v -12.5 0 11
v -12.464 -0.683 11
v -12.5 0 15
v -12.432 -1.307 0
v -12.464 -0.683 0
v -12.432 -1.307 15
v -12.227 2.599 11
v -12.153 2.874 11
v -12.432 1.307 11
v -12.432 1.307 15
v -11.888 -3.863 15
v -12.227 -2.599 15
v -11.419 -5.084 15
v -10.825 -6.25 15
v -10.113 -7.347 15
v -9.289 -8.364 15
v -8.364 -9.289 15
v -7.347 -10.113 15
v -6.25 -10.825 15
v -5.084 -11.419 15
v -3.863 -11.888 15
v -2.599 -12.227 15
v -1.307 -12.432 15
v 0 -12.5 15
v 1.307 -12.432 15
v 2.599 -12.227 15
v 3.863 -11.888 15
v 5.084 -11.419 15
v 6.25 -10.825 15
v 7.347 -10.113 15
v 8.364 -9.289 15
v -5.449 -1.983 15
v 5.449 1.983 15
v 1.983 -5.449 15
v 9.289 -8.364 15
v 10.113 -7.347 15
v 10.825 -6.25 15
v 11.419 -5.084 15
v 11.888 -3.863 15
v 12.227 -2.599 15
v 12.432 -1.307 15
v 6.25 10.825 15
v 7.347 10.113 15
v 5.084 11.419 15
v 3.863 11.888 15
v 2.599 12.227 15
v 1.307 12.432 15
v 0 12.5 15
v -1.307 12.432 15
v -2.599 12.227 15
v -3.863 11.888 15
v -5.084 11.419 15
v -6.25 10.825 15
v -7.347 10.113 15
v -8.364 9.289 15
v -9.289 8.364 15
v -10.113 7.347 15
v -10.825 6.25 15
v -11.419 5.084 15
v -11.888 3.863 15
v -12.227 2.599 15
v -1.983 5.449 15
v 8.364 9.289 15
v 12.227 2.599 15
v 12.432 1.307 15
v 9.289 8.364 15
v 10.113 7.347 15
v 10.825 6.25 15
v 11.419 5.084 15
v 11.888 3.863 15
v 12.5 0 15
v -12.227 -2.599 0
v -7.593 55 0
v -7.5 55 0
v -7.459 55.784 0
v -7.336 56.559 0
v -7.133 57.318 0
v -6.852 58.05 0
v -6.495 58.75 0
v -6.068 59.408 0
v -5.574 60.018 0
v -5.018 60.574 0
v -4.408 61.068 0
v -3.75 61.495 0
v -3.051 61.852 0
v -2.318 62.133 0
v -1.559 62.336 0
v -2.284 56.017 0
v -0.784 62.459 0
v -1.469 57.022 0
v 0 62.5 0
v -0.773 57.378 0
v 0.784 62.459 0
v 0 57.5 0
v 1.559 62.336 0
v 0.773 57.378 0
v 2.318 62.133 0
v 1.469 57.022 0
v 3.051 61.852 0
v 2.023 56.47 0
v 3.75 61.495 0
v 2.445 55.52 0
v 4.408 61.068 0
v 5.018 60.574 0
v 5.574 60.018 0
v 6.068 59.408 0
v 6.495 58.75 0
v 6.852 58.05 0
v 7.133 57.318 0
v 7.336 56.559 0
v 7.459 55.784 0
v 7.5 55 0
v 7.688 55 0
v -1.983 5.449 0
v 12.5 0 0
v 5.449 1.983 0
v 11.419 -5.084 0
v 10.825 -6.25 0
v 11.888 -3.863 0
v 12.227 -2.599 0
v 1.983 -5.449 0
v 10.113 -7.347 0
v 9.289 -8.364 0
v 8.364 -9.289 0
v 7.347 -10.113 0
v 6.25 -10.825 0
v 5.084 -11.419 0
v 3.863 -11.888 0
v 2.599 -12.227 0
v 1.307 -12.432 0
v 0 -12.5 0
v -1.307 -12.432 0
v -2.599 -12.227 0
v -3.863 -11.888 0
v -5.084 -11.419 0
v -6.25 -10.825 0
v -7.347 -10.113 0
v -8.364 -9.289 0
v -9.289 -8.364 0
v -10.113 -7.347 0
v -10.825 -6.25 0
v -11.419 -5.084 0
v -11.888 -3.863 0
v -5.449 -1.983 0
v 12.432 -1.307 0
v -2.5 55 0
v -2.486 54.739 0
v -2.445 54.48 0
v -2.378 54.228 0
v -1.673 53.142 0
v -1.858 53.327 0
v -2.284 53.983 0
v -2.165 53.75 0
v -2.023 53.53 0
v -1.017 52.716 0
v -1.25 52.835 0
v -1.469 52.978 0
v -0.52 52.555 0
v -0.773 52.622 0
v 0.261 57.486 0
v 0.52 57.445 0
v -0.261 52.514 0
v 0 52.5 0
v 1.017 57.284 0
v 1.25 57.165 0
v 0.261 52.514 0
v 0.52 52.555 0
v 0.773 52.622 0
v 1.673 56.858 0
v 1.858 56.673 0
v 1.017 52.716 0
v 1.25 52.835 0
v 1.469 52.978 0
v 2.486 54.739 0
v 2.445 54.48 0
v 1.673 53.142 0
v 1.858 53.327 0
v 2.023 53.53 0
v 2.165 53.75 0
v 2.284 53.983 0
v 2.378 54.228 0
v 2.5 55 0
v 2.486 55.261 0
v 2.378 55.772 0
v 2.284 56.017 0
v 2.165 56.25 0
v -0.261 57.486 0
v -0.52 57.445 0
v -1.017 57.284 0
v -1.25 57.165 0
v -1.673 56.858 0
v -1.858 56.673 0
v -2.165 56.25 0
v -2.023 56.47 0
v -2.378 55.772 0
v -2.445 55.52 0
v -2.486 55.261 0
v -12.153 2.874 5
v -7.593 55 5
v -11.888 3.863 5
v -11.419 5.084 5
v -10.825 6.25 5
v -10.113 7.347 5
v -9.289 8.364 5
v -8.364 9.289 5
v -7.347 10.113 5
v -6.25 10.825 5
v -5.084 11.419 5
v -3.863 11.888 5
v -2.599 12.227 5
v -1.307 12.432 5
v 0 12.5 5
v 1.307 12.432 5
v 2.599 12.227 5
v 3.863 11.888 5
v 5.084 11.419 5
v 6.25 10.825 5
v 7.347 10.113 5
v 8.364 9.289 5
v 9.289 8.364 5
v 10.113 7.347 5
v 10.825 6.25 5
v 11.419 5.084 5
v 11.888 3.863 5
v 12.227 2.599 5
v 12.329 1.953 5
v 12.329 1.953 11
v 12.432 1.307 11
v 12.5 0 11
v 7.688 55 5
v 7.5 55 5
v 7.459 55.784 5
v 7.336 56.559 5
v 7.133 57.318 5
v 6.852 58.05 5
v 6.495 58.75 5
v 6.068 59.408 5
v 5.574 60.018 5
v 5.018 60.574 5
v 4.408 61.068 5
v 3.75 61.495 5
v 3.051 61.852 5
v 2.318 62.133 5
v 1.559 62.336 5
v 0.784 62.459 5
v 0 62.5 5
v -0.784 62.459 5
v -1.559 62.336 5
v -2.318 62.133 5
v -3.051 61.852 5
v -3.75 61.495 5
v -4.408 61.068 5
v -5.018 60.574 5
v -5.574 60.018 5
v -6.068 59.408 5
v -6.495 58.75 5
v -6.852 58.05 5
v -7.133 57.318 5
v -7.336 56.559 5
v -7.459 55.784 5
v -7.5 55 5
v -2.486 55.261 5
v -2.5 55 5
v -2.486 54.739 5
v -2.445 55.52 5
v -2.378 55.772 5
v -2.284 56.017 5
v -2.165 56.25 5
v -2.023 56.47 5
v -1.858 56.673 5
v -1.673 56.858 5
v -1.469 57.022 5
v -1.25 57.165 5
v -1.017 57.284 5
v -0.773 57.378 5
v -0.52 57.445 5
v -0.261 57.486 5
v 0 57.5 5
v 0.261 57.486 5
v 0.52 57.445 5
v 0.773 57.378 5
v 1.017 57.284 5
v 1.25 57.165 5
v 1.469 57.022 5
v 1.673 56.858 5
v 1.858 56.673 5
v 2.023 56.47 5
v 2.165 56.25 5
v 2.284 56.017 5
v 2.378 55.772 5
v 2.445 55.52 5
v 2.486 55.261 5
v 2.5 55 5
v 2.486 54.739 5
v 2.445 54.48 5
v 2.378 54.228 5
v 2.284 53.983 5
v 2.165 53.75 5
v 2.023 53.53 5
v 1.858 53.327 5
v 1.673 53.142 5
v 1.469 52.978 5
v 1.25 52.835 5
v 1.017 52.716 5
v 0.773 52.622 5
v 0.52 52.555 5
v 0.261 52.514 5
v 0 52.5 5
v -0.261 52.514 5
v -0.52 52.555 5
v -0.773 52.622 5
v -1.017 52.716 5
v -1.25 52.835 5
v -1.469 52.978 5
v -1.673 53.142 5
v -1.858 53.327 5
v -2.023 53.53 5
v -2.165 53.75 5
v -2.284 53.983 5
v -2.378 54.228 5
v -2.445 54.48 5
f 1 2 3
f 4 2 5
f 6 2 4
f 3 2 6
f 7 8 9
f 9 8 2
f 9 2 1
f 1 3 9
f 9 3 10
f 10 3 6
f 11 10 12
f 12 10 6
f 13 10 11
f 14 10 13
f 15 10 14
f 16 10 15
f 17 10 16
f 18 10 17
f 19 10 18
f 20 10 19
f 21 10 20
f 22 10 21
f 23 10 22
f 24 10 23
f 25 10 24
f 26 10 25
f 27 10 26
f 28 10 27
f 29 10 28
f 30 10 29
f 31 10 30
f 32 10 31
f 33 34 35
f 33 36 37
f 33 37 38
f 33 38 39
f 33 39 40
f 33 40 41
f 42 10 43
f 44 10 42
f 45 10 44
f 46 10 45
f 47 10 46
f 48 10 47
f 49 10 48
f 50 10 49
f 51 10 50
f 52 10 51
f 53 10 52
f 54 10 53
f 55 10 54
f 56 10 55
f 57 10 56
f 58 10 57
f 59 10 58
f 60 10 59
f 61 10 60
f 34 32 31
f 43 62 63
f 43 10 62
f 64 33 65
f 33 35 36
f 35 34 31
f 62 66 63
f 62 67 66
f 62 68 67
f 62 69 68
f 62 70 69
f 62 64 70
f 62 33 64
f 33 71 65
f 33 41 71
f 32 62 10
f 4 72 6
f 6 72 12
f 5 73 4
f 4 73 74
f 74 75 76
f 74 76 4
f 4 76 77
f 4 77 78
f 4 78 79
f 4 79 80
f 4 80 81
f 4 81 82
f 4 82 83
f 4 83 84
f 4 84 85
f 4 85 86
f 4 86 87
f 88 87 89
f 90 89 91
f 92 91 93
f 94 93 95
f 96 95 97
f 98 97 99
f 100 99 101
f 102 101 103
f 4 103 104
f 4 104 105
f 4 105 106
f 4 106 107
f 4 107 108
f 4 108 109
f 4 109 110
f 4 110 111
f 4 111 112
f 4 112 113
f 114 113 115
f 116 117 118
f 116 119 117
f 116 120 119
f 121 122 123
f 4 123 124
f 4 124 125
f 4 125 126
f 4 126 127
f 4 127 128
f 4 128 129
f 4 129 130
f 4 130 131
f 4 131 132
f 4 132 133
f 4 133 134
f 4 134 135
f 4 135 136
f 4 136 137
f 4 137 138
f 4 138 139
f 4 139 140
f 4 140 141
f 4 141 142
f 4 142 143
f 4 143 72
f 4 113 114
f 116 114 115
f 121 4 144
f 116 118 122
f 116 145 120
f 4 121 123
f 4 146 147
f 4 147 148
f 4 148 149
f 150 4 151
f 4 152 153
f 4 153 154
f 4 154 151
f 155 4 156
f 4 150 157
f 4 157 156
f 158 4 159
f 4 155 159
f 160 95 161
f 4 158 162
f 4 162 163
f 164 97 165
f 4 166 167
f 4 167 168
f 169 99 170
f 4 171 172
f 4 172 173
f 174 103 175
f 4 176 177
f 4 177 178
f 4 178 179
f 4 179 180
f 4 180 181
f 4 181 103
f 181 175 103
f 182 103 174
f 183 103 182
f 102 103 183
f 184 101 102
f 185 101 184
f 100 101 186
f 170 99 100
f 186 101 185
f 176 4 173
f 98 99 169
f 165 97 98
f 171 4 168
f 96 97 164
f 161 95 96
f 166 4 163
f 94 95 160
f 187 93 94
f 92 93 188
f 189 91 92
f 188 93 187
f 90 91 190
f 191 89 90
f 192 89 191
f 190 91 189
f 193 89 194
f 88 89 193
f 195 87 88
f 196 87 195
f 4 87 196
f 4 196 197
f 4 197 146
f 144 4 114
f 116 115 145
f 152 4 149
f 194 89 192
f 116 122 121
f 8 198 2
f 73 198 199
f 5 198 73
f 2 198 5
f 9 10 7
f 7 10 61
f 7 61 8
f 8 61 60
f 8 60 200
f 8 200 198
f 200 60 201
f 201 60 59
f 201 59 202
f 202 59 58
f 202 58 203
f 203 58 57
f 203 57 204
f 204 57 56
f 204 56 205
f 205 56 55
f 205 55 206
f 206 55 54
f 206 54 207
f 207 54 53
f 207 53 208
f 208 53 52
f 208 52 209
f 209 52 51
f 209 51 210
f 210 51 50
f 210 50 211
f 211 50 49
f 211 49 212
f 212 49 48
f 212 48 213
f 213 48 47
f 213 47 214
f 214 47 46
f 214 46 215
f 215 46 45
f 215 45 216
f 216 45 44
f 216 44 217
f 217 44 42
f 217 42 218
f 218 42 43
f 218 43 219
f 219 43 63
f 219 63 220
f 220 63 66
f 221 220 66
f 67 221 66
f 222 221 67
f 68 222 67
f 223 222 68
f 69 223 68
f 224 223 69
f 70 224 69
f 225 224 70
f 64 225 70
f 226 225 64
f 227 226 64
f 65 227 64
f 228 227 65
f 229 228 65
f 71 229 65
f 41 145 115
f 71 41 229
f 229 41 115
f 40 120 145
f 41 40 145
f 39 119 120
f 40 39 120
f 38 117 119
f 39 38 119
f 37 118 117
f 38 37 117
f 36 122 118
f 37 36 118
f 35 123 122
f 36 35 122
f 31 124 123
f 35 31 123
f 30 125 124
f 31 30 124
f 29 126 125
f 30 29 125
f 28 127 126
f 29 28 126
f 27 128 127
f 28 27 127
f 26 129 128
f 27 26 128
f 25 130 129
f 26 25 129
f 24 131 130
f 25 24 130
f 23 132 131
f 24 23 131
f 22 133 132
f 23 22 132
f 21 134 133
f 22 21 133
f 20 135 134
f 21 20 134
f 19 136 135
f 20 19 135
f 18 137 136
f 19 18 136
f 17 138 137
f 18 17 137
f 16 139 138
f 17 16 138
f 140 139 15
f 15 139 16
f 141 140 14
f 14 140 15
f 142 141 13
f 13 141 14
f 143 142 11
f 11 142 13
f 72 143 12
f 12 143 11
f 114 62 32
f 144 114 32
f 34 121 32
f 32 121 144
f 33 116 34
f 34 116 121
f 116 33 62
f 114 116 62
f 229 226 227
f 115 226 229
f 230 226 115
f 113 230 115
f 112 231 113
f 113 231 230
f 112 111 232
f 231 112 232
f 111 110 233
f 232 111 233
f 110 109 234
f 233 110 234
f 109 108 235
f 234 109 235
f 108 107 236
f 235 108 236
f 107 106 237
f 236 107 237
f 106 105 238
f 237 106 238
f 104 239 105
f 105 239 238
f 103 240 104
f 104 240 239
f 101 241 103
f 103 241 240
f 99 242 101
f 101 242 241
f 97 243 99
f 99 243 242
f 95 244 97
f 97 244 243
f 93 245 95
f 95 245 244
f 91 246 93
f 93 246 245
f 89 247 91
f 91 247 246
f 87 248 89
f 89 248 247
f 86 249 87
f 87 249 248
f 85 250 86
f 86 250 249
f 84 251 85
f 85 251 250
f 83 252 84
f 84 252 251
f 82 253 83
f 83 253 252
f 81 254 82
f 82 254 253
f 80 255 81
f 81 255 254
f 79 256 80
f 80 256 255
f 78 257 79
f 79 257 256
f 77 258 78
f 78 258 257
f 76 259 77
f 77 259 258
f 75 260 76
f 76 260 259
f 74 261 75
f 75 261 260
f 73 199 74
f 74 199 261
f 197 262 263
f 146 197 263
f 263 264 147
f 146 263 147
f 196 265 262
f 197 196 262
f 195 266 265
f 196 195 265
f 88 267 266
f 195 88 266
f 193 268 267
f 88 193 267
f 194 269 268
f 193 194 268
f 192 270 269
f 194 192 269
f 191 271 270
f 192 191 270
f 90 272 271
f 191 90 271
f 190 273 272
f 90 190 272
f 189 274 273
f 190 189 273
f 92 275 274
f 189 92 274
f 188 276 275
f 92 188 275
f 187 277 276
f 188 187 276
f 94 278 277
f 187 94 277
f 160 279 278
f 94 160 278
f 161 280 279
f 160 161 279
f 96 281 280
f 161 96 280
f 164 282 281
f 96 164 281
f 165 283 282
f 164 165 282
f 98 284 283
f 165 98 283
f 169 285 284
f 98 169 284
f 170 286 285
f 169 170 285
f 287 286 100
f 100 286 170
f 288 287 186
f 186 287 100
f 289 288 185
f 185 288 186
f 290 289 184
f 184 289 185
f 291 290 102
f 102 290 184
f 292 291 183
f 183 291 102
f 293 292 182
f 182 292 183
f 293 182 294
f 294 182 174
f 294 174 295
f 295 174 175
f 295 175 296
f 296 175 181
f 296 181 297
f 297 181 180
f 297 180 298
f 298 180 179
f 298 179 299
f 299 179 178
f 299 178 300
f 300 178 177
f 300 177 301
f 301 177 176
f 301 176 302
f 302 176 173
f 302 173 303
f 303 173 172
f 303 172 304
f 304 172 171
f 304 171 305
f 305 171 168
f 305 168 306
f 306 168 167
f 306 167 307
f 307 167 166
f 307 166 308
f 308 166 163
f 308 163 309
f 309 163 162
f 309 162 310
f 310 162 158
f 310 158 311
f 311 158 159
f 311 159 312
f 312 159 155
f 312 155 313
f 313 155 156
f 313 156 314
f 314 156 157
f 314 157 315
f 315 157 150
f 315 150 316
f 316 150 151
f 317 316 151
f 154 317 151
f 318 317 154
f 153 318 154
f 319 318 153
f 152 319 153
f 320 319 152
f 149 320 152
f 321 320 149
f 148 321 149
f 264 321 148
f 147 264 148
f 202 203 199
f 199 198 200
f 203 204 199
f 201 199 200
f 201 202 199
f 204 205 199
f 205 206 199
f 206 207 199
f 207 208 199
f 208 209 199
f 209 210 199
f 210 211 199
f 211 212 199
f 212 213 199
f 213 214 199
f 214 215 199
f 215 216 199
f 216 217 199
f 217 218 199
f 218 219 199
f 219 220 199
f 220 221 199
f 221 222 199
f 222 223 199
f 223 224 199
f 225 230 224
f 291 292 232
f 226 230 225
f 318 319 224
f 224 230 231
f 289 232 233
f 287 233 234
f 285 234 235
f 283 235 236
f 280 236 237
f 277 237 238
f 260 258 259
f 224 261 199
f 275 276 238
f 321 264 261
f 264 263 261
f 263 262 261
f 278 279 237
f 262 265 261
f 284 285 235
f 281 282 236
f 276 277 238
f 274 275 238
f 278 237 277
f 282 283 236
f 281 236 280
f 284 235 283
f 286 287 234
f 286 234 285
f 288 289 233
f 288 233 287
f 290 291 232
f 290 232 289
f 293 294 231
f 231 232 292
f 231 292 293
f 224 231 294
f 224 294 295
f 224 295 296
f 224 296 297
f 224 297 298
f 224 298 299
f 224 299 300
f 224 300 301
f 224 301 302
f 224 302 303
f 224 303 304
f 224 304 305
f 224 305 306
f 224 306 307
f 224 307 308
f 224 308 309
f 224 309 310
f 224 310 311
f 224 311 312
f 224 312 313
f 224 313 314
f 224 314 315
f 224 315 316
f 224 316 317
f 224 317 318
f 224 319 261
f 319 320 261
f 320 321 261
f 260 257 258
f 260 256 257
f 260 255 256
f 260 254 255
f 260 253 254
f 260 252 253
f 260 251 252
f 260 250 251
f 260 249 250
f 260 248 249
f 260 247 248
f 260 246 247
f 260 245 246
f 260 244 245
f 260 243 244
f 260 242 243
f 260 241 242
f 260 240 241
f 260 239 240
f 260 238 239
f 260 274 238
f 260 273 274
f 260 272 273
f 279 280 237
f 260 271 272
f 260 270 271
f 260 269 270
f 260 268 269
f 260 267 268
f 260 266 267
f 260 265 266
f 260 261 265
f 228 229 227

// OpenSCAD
/*
 * flusher
 *
 * Replacement handle leaver for a toliet flush mechanism.
 *
 * Copyright 2012 <b@Zi.iS>
 * License CC BY 3.0
 */

$fn=60;

difference(){
	union() {
		cylinder(
			r=25/2,
			h=15
		);
		translate([
			-25/2,
			0,
			0
		]) {
		cube([
				25,
				55,
				5
			]);
		}
		translate([
			0,
			55,
			0
		]) {
			cylinder(
				r=15/2,
				h=5
			);
		}
	}
	translate([
		0,
		0,
		15/2
	]) {
		rotate([
			0,
			0,
			-25,
		]) {
			cube([
				8.2,
				8.2,
				15+2
			],
			center=true);
		}
	}
	translate([
		0,
		55,	
		-1
	]) {
		cylinder(
			r=5/2,
			h=10+2
		);
	}
	translate([
		25/2,
		0,
		-1,
	]) {
		rotate([
			0,
			0,
			5
		]) {
			cube([
				25,
				57,
				10+2
			]);
		}
	}
	translate([
		-25-25/2,
		0,
		-1,
	]) {
		rotate([
			0,
			0,
			-5
		]) {
			cube([
				25,
				58,
				10+2
			]);
		}
	}

}
